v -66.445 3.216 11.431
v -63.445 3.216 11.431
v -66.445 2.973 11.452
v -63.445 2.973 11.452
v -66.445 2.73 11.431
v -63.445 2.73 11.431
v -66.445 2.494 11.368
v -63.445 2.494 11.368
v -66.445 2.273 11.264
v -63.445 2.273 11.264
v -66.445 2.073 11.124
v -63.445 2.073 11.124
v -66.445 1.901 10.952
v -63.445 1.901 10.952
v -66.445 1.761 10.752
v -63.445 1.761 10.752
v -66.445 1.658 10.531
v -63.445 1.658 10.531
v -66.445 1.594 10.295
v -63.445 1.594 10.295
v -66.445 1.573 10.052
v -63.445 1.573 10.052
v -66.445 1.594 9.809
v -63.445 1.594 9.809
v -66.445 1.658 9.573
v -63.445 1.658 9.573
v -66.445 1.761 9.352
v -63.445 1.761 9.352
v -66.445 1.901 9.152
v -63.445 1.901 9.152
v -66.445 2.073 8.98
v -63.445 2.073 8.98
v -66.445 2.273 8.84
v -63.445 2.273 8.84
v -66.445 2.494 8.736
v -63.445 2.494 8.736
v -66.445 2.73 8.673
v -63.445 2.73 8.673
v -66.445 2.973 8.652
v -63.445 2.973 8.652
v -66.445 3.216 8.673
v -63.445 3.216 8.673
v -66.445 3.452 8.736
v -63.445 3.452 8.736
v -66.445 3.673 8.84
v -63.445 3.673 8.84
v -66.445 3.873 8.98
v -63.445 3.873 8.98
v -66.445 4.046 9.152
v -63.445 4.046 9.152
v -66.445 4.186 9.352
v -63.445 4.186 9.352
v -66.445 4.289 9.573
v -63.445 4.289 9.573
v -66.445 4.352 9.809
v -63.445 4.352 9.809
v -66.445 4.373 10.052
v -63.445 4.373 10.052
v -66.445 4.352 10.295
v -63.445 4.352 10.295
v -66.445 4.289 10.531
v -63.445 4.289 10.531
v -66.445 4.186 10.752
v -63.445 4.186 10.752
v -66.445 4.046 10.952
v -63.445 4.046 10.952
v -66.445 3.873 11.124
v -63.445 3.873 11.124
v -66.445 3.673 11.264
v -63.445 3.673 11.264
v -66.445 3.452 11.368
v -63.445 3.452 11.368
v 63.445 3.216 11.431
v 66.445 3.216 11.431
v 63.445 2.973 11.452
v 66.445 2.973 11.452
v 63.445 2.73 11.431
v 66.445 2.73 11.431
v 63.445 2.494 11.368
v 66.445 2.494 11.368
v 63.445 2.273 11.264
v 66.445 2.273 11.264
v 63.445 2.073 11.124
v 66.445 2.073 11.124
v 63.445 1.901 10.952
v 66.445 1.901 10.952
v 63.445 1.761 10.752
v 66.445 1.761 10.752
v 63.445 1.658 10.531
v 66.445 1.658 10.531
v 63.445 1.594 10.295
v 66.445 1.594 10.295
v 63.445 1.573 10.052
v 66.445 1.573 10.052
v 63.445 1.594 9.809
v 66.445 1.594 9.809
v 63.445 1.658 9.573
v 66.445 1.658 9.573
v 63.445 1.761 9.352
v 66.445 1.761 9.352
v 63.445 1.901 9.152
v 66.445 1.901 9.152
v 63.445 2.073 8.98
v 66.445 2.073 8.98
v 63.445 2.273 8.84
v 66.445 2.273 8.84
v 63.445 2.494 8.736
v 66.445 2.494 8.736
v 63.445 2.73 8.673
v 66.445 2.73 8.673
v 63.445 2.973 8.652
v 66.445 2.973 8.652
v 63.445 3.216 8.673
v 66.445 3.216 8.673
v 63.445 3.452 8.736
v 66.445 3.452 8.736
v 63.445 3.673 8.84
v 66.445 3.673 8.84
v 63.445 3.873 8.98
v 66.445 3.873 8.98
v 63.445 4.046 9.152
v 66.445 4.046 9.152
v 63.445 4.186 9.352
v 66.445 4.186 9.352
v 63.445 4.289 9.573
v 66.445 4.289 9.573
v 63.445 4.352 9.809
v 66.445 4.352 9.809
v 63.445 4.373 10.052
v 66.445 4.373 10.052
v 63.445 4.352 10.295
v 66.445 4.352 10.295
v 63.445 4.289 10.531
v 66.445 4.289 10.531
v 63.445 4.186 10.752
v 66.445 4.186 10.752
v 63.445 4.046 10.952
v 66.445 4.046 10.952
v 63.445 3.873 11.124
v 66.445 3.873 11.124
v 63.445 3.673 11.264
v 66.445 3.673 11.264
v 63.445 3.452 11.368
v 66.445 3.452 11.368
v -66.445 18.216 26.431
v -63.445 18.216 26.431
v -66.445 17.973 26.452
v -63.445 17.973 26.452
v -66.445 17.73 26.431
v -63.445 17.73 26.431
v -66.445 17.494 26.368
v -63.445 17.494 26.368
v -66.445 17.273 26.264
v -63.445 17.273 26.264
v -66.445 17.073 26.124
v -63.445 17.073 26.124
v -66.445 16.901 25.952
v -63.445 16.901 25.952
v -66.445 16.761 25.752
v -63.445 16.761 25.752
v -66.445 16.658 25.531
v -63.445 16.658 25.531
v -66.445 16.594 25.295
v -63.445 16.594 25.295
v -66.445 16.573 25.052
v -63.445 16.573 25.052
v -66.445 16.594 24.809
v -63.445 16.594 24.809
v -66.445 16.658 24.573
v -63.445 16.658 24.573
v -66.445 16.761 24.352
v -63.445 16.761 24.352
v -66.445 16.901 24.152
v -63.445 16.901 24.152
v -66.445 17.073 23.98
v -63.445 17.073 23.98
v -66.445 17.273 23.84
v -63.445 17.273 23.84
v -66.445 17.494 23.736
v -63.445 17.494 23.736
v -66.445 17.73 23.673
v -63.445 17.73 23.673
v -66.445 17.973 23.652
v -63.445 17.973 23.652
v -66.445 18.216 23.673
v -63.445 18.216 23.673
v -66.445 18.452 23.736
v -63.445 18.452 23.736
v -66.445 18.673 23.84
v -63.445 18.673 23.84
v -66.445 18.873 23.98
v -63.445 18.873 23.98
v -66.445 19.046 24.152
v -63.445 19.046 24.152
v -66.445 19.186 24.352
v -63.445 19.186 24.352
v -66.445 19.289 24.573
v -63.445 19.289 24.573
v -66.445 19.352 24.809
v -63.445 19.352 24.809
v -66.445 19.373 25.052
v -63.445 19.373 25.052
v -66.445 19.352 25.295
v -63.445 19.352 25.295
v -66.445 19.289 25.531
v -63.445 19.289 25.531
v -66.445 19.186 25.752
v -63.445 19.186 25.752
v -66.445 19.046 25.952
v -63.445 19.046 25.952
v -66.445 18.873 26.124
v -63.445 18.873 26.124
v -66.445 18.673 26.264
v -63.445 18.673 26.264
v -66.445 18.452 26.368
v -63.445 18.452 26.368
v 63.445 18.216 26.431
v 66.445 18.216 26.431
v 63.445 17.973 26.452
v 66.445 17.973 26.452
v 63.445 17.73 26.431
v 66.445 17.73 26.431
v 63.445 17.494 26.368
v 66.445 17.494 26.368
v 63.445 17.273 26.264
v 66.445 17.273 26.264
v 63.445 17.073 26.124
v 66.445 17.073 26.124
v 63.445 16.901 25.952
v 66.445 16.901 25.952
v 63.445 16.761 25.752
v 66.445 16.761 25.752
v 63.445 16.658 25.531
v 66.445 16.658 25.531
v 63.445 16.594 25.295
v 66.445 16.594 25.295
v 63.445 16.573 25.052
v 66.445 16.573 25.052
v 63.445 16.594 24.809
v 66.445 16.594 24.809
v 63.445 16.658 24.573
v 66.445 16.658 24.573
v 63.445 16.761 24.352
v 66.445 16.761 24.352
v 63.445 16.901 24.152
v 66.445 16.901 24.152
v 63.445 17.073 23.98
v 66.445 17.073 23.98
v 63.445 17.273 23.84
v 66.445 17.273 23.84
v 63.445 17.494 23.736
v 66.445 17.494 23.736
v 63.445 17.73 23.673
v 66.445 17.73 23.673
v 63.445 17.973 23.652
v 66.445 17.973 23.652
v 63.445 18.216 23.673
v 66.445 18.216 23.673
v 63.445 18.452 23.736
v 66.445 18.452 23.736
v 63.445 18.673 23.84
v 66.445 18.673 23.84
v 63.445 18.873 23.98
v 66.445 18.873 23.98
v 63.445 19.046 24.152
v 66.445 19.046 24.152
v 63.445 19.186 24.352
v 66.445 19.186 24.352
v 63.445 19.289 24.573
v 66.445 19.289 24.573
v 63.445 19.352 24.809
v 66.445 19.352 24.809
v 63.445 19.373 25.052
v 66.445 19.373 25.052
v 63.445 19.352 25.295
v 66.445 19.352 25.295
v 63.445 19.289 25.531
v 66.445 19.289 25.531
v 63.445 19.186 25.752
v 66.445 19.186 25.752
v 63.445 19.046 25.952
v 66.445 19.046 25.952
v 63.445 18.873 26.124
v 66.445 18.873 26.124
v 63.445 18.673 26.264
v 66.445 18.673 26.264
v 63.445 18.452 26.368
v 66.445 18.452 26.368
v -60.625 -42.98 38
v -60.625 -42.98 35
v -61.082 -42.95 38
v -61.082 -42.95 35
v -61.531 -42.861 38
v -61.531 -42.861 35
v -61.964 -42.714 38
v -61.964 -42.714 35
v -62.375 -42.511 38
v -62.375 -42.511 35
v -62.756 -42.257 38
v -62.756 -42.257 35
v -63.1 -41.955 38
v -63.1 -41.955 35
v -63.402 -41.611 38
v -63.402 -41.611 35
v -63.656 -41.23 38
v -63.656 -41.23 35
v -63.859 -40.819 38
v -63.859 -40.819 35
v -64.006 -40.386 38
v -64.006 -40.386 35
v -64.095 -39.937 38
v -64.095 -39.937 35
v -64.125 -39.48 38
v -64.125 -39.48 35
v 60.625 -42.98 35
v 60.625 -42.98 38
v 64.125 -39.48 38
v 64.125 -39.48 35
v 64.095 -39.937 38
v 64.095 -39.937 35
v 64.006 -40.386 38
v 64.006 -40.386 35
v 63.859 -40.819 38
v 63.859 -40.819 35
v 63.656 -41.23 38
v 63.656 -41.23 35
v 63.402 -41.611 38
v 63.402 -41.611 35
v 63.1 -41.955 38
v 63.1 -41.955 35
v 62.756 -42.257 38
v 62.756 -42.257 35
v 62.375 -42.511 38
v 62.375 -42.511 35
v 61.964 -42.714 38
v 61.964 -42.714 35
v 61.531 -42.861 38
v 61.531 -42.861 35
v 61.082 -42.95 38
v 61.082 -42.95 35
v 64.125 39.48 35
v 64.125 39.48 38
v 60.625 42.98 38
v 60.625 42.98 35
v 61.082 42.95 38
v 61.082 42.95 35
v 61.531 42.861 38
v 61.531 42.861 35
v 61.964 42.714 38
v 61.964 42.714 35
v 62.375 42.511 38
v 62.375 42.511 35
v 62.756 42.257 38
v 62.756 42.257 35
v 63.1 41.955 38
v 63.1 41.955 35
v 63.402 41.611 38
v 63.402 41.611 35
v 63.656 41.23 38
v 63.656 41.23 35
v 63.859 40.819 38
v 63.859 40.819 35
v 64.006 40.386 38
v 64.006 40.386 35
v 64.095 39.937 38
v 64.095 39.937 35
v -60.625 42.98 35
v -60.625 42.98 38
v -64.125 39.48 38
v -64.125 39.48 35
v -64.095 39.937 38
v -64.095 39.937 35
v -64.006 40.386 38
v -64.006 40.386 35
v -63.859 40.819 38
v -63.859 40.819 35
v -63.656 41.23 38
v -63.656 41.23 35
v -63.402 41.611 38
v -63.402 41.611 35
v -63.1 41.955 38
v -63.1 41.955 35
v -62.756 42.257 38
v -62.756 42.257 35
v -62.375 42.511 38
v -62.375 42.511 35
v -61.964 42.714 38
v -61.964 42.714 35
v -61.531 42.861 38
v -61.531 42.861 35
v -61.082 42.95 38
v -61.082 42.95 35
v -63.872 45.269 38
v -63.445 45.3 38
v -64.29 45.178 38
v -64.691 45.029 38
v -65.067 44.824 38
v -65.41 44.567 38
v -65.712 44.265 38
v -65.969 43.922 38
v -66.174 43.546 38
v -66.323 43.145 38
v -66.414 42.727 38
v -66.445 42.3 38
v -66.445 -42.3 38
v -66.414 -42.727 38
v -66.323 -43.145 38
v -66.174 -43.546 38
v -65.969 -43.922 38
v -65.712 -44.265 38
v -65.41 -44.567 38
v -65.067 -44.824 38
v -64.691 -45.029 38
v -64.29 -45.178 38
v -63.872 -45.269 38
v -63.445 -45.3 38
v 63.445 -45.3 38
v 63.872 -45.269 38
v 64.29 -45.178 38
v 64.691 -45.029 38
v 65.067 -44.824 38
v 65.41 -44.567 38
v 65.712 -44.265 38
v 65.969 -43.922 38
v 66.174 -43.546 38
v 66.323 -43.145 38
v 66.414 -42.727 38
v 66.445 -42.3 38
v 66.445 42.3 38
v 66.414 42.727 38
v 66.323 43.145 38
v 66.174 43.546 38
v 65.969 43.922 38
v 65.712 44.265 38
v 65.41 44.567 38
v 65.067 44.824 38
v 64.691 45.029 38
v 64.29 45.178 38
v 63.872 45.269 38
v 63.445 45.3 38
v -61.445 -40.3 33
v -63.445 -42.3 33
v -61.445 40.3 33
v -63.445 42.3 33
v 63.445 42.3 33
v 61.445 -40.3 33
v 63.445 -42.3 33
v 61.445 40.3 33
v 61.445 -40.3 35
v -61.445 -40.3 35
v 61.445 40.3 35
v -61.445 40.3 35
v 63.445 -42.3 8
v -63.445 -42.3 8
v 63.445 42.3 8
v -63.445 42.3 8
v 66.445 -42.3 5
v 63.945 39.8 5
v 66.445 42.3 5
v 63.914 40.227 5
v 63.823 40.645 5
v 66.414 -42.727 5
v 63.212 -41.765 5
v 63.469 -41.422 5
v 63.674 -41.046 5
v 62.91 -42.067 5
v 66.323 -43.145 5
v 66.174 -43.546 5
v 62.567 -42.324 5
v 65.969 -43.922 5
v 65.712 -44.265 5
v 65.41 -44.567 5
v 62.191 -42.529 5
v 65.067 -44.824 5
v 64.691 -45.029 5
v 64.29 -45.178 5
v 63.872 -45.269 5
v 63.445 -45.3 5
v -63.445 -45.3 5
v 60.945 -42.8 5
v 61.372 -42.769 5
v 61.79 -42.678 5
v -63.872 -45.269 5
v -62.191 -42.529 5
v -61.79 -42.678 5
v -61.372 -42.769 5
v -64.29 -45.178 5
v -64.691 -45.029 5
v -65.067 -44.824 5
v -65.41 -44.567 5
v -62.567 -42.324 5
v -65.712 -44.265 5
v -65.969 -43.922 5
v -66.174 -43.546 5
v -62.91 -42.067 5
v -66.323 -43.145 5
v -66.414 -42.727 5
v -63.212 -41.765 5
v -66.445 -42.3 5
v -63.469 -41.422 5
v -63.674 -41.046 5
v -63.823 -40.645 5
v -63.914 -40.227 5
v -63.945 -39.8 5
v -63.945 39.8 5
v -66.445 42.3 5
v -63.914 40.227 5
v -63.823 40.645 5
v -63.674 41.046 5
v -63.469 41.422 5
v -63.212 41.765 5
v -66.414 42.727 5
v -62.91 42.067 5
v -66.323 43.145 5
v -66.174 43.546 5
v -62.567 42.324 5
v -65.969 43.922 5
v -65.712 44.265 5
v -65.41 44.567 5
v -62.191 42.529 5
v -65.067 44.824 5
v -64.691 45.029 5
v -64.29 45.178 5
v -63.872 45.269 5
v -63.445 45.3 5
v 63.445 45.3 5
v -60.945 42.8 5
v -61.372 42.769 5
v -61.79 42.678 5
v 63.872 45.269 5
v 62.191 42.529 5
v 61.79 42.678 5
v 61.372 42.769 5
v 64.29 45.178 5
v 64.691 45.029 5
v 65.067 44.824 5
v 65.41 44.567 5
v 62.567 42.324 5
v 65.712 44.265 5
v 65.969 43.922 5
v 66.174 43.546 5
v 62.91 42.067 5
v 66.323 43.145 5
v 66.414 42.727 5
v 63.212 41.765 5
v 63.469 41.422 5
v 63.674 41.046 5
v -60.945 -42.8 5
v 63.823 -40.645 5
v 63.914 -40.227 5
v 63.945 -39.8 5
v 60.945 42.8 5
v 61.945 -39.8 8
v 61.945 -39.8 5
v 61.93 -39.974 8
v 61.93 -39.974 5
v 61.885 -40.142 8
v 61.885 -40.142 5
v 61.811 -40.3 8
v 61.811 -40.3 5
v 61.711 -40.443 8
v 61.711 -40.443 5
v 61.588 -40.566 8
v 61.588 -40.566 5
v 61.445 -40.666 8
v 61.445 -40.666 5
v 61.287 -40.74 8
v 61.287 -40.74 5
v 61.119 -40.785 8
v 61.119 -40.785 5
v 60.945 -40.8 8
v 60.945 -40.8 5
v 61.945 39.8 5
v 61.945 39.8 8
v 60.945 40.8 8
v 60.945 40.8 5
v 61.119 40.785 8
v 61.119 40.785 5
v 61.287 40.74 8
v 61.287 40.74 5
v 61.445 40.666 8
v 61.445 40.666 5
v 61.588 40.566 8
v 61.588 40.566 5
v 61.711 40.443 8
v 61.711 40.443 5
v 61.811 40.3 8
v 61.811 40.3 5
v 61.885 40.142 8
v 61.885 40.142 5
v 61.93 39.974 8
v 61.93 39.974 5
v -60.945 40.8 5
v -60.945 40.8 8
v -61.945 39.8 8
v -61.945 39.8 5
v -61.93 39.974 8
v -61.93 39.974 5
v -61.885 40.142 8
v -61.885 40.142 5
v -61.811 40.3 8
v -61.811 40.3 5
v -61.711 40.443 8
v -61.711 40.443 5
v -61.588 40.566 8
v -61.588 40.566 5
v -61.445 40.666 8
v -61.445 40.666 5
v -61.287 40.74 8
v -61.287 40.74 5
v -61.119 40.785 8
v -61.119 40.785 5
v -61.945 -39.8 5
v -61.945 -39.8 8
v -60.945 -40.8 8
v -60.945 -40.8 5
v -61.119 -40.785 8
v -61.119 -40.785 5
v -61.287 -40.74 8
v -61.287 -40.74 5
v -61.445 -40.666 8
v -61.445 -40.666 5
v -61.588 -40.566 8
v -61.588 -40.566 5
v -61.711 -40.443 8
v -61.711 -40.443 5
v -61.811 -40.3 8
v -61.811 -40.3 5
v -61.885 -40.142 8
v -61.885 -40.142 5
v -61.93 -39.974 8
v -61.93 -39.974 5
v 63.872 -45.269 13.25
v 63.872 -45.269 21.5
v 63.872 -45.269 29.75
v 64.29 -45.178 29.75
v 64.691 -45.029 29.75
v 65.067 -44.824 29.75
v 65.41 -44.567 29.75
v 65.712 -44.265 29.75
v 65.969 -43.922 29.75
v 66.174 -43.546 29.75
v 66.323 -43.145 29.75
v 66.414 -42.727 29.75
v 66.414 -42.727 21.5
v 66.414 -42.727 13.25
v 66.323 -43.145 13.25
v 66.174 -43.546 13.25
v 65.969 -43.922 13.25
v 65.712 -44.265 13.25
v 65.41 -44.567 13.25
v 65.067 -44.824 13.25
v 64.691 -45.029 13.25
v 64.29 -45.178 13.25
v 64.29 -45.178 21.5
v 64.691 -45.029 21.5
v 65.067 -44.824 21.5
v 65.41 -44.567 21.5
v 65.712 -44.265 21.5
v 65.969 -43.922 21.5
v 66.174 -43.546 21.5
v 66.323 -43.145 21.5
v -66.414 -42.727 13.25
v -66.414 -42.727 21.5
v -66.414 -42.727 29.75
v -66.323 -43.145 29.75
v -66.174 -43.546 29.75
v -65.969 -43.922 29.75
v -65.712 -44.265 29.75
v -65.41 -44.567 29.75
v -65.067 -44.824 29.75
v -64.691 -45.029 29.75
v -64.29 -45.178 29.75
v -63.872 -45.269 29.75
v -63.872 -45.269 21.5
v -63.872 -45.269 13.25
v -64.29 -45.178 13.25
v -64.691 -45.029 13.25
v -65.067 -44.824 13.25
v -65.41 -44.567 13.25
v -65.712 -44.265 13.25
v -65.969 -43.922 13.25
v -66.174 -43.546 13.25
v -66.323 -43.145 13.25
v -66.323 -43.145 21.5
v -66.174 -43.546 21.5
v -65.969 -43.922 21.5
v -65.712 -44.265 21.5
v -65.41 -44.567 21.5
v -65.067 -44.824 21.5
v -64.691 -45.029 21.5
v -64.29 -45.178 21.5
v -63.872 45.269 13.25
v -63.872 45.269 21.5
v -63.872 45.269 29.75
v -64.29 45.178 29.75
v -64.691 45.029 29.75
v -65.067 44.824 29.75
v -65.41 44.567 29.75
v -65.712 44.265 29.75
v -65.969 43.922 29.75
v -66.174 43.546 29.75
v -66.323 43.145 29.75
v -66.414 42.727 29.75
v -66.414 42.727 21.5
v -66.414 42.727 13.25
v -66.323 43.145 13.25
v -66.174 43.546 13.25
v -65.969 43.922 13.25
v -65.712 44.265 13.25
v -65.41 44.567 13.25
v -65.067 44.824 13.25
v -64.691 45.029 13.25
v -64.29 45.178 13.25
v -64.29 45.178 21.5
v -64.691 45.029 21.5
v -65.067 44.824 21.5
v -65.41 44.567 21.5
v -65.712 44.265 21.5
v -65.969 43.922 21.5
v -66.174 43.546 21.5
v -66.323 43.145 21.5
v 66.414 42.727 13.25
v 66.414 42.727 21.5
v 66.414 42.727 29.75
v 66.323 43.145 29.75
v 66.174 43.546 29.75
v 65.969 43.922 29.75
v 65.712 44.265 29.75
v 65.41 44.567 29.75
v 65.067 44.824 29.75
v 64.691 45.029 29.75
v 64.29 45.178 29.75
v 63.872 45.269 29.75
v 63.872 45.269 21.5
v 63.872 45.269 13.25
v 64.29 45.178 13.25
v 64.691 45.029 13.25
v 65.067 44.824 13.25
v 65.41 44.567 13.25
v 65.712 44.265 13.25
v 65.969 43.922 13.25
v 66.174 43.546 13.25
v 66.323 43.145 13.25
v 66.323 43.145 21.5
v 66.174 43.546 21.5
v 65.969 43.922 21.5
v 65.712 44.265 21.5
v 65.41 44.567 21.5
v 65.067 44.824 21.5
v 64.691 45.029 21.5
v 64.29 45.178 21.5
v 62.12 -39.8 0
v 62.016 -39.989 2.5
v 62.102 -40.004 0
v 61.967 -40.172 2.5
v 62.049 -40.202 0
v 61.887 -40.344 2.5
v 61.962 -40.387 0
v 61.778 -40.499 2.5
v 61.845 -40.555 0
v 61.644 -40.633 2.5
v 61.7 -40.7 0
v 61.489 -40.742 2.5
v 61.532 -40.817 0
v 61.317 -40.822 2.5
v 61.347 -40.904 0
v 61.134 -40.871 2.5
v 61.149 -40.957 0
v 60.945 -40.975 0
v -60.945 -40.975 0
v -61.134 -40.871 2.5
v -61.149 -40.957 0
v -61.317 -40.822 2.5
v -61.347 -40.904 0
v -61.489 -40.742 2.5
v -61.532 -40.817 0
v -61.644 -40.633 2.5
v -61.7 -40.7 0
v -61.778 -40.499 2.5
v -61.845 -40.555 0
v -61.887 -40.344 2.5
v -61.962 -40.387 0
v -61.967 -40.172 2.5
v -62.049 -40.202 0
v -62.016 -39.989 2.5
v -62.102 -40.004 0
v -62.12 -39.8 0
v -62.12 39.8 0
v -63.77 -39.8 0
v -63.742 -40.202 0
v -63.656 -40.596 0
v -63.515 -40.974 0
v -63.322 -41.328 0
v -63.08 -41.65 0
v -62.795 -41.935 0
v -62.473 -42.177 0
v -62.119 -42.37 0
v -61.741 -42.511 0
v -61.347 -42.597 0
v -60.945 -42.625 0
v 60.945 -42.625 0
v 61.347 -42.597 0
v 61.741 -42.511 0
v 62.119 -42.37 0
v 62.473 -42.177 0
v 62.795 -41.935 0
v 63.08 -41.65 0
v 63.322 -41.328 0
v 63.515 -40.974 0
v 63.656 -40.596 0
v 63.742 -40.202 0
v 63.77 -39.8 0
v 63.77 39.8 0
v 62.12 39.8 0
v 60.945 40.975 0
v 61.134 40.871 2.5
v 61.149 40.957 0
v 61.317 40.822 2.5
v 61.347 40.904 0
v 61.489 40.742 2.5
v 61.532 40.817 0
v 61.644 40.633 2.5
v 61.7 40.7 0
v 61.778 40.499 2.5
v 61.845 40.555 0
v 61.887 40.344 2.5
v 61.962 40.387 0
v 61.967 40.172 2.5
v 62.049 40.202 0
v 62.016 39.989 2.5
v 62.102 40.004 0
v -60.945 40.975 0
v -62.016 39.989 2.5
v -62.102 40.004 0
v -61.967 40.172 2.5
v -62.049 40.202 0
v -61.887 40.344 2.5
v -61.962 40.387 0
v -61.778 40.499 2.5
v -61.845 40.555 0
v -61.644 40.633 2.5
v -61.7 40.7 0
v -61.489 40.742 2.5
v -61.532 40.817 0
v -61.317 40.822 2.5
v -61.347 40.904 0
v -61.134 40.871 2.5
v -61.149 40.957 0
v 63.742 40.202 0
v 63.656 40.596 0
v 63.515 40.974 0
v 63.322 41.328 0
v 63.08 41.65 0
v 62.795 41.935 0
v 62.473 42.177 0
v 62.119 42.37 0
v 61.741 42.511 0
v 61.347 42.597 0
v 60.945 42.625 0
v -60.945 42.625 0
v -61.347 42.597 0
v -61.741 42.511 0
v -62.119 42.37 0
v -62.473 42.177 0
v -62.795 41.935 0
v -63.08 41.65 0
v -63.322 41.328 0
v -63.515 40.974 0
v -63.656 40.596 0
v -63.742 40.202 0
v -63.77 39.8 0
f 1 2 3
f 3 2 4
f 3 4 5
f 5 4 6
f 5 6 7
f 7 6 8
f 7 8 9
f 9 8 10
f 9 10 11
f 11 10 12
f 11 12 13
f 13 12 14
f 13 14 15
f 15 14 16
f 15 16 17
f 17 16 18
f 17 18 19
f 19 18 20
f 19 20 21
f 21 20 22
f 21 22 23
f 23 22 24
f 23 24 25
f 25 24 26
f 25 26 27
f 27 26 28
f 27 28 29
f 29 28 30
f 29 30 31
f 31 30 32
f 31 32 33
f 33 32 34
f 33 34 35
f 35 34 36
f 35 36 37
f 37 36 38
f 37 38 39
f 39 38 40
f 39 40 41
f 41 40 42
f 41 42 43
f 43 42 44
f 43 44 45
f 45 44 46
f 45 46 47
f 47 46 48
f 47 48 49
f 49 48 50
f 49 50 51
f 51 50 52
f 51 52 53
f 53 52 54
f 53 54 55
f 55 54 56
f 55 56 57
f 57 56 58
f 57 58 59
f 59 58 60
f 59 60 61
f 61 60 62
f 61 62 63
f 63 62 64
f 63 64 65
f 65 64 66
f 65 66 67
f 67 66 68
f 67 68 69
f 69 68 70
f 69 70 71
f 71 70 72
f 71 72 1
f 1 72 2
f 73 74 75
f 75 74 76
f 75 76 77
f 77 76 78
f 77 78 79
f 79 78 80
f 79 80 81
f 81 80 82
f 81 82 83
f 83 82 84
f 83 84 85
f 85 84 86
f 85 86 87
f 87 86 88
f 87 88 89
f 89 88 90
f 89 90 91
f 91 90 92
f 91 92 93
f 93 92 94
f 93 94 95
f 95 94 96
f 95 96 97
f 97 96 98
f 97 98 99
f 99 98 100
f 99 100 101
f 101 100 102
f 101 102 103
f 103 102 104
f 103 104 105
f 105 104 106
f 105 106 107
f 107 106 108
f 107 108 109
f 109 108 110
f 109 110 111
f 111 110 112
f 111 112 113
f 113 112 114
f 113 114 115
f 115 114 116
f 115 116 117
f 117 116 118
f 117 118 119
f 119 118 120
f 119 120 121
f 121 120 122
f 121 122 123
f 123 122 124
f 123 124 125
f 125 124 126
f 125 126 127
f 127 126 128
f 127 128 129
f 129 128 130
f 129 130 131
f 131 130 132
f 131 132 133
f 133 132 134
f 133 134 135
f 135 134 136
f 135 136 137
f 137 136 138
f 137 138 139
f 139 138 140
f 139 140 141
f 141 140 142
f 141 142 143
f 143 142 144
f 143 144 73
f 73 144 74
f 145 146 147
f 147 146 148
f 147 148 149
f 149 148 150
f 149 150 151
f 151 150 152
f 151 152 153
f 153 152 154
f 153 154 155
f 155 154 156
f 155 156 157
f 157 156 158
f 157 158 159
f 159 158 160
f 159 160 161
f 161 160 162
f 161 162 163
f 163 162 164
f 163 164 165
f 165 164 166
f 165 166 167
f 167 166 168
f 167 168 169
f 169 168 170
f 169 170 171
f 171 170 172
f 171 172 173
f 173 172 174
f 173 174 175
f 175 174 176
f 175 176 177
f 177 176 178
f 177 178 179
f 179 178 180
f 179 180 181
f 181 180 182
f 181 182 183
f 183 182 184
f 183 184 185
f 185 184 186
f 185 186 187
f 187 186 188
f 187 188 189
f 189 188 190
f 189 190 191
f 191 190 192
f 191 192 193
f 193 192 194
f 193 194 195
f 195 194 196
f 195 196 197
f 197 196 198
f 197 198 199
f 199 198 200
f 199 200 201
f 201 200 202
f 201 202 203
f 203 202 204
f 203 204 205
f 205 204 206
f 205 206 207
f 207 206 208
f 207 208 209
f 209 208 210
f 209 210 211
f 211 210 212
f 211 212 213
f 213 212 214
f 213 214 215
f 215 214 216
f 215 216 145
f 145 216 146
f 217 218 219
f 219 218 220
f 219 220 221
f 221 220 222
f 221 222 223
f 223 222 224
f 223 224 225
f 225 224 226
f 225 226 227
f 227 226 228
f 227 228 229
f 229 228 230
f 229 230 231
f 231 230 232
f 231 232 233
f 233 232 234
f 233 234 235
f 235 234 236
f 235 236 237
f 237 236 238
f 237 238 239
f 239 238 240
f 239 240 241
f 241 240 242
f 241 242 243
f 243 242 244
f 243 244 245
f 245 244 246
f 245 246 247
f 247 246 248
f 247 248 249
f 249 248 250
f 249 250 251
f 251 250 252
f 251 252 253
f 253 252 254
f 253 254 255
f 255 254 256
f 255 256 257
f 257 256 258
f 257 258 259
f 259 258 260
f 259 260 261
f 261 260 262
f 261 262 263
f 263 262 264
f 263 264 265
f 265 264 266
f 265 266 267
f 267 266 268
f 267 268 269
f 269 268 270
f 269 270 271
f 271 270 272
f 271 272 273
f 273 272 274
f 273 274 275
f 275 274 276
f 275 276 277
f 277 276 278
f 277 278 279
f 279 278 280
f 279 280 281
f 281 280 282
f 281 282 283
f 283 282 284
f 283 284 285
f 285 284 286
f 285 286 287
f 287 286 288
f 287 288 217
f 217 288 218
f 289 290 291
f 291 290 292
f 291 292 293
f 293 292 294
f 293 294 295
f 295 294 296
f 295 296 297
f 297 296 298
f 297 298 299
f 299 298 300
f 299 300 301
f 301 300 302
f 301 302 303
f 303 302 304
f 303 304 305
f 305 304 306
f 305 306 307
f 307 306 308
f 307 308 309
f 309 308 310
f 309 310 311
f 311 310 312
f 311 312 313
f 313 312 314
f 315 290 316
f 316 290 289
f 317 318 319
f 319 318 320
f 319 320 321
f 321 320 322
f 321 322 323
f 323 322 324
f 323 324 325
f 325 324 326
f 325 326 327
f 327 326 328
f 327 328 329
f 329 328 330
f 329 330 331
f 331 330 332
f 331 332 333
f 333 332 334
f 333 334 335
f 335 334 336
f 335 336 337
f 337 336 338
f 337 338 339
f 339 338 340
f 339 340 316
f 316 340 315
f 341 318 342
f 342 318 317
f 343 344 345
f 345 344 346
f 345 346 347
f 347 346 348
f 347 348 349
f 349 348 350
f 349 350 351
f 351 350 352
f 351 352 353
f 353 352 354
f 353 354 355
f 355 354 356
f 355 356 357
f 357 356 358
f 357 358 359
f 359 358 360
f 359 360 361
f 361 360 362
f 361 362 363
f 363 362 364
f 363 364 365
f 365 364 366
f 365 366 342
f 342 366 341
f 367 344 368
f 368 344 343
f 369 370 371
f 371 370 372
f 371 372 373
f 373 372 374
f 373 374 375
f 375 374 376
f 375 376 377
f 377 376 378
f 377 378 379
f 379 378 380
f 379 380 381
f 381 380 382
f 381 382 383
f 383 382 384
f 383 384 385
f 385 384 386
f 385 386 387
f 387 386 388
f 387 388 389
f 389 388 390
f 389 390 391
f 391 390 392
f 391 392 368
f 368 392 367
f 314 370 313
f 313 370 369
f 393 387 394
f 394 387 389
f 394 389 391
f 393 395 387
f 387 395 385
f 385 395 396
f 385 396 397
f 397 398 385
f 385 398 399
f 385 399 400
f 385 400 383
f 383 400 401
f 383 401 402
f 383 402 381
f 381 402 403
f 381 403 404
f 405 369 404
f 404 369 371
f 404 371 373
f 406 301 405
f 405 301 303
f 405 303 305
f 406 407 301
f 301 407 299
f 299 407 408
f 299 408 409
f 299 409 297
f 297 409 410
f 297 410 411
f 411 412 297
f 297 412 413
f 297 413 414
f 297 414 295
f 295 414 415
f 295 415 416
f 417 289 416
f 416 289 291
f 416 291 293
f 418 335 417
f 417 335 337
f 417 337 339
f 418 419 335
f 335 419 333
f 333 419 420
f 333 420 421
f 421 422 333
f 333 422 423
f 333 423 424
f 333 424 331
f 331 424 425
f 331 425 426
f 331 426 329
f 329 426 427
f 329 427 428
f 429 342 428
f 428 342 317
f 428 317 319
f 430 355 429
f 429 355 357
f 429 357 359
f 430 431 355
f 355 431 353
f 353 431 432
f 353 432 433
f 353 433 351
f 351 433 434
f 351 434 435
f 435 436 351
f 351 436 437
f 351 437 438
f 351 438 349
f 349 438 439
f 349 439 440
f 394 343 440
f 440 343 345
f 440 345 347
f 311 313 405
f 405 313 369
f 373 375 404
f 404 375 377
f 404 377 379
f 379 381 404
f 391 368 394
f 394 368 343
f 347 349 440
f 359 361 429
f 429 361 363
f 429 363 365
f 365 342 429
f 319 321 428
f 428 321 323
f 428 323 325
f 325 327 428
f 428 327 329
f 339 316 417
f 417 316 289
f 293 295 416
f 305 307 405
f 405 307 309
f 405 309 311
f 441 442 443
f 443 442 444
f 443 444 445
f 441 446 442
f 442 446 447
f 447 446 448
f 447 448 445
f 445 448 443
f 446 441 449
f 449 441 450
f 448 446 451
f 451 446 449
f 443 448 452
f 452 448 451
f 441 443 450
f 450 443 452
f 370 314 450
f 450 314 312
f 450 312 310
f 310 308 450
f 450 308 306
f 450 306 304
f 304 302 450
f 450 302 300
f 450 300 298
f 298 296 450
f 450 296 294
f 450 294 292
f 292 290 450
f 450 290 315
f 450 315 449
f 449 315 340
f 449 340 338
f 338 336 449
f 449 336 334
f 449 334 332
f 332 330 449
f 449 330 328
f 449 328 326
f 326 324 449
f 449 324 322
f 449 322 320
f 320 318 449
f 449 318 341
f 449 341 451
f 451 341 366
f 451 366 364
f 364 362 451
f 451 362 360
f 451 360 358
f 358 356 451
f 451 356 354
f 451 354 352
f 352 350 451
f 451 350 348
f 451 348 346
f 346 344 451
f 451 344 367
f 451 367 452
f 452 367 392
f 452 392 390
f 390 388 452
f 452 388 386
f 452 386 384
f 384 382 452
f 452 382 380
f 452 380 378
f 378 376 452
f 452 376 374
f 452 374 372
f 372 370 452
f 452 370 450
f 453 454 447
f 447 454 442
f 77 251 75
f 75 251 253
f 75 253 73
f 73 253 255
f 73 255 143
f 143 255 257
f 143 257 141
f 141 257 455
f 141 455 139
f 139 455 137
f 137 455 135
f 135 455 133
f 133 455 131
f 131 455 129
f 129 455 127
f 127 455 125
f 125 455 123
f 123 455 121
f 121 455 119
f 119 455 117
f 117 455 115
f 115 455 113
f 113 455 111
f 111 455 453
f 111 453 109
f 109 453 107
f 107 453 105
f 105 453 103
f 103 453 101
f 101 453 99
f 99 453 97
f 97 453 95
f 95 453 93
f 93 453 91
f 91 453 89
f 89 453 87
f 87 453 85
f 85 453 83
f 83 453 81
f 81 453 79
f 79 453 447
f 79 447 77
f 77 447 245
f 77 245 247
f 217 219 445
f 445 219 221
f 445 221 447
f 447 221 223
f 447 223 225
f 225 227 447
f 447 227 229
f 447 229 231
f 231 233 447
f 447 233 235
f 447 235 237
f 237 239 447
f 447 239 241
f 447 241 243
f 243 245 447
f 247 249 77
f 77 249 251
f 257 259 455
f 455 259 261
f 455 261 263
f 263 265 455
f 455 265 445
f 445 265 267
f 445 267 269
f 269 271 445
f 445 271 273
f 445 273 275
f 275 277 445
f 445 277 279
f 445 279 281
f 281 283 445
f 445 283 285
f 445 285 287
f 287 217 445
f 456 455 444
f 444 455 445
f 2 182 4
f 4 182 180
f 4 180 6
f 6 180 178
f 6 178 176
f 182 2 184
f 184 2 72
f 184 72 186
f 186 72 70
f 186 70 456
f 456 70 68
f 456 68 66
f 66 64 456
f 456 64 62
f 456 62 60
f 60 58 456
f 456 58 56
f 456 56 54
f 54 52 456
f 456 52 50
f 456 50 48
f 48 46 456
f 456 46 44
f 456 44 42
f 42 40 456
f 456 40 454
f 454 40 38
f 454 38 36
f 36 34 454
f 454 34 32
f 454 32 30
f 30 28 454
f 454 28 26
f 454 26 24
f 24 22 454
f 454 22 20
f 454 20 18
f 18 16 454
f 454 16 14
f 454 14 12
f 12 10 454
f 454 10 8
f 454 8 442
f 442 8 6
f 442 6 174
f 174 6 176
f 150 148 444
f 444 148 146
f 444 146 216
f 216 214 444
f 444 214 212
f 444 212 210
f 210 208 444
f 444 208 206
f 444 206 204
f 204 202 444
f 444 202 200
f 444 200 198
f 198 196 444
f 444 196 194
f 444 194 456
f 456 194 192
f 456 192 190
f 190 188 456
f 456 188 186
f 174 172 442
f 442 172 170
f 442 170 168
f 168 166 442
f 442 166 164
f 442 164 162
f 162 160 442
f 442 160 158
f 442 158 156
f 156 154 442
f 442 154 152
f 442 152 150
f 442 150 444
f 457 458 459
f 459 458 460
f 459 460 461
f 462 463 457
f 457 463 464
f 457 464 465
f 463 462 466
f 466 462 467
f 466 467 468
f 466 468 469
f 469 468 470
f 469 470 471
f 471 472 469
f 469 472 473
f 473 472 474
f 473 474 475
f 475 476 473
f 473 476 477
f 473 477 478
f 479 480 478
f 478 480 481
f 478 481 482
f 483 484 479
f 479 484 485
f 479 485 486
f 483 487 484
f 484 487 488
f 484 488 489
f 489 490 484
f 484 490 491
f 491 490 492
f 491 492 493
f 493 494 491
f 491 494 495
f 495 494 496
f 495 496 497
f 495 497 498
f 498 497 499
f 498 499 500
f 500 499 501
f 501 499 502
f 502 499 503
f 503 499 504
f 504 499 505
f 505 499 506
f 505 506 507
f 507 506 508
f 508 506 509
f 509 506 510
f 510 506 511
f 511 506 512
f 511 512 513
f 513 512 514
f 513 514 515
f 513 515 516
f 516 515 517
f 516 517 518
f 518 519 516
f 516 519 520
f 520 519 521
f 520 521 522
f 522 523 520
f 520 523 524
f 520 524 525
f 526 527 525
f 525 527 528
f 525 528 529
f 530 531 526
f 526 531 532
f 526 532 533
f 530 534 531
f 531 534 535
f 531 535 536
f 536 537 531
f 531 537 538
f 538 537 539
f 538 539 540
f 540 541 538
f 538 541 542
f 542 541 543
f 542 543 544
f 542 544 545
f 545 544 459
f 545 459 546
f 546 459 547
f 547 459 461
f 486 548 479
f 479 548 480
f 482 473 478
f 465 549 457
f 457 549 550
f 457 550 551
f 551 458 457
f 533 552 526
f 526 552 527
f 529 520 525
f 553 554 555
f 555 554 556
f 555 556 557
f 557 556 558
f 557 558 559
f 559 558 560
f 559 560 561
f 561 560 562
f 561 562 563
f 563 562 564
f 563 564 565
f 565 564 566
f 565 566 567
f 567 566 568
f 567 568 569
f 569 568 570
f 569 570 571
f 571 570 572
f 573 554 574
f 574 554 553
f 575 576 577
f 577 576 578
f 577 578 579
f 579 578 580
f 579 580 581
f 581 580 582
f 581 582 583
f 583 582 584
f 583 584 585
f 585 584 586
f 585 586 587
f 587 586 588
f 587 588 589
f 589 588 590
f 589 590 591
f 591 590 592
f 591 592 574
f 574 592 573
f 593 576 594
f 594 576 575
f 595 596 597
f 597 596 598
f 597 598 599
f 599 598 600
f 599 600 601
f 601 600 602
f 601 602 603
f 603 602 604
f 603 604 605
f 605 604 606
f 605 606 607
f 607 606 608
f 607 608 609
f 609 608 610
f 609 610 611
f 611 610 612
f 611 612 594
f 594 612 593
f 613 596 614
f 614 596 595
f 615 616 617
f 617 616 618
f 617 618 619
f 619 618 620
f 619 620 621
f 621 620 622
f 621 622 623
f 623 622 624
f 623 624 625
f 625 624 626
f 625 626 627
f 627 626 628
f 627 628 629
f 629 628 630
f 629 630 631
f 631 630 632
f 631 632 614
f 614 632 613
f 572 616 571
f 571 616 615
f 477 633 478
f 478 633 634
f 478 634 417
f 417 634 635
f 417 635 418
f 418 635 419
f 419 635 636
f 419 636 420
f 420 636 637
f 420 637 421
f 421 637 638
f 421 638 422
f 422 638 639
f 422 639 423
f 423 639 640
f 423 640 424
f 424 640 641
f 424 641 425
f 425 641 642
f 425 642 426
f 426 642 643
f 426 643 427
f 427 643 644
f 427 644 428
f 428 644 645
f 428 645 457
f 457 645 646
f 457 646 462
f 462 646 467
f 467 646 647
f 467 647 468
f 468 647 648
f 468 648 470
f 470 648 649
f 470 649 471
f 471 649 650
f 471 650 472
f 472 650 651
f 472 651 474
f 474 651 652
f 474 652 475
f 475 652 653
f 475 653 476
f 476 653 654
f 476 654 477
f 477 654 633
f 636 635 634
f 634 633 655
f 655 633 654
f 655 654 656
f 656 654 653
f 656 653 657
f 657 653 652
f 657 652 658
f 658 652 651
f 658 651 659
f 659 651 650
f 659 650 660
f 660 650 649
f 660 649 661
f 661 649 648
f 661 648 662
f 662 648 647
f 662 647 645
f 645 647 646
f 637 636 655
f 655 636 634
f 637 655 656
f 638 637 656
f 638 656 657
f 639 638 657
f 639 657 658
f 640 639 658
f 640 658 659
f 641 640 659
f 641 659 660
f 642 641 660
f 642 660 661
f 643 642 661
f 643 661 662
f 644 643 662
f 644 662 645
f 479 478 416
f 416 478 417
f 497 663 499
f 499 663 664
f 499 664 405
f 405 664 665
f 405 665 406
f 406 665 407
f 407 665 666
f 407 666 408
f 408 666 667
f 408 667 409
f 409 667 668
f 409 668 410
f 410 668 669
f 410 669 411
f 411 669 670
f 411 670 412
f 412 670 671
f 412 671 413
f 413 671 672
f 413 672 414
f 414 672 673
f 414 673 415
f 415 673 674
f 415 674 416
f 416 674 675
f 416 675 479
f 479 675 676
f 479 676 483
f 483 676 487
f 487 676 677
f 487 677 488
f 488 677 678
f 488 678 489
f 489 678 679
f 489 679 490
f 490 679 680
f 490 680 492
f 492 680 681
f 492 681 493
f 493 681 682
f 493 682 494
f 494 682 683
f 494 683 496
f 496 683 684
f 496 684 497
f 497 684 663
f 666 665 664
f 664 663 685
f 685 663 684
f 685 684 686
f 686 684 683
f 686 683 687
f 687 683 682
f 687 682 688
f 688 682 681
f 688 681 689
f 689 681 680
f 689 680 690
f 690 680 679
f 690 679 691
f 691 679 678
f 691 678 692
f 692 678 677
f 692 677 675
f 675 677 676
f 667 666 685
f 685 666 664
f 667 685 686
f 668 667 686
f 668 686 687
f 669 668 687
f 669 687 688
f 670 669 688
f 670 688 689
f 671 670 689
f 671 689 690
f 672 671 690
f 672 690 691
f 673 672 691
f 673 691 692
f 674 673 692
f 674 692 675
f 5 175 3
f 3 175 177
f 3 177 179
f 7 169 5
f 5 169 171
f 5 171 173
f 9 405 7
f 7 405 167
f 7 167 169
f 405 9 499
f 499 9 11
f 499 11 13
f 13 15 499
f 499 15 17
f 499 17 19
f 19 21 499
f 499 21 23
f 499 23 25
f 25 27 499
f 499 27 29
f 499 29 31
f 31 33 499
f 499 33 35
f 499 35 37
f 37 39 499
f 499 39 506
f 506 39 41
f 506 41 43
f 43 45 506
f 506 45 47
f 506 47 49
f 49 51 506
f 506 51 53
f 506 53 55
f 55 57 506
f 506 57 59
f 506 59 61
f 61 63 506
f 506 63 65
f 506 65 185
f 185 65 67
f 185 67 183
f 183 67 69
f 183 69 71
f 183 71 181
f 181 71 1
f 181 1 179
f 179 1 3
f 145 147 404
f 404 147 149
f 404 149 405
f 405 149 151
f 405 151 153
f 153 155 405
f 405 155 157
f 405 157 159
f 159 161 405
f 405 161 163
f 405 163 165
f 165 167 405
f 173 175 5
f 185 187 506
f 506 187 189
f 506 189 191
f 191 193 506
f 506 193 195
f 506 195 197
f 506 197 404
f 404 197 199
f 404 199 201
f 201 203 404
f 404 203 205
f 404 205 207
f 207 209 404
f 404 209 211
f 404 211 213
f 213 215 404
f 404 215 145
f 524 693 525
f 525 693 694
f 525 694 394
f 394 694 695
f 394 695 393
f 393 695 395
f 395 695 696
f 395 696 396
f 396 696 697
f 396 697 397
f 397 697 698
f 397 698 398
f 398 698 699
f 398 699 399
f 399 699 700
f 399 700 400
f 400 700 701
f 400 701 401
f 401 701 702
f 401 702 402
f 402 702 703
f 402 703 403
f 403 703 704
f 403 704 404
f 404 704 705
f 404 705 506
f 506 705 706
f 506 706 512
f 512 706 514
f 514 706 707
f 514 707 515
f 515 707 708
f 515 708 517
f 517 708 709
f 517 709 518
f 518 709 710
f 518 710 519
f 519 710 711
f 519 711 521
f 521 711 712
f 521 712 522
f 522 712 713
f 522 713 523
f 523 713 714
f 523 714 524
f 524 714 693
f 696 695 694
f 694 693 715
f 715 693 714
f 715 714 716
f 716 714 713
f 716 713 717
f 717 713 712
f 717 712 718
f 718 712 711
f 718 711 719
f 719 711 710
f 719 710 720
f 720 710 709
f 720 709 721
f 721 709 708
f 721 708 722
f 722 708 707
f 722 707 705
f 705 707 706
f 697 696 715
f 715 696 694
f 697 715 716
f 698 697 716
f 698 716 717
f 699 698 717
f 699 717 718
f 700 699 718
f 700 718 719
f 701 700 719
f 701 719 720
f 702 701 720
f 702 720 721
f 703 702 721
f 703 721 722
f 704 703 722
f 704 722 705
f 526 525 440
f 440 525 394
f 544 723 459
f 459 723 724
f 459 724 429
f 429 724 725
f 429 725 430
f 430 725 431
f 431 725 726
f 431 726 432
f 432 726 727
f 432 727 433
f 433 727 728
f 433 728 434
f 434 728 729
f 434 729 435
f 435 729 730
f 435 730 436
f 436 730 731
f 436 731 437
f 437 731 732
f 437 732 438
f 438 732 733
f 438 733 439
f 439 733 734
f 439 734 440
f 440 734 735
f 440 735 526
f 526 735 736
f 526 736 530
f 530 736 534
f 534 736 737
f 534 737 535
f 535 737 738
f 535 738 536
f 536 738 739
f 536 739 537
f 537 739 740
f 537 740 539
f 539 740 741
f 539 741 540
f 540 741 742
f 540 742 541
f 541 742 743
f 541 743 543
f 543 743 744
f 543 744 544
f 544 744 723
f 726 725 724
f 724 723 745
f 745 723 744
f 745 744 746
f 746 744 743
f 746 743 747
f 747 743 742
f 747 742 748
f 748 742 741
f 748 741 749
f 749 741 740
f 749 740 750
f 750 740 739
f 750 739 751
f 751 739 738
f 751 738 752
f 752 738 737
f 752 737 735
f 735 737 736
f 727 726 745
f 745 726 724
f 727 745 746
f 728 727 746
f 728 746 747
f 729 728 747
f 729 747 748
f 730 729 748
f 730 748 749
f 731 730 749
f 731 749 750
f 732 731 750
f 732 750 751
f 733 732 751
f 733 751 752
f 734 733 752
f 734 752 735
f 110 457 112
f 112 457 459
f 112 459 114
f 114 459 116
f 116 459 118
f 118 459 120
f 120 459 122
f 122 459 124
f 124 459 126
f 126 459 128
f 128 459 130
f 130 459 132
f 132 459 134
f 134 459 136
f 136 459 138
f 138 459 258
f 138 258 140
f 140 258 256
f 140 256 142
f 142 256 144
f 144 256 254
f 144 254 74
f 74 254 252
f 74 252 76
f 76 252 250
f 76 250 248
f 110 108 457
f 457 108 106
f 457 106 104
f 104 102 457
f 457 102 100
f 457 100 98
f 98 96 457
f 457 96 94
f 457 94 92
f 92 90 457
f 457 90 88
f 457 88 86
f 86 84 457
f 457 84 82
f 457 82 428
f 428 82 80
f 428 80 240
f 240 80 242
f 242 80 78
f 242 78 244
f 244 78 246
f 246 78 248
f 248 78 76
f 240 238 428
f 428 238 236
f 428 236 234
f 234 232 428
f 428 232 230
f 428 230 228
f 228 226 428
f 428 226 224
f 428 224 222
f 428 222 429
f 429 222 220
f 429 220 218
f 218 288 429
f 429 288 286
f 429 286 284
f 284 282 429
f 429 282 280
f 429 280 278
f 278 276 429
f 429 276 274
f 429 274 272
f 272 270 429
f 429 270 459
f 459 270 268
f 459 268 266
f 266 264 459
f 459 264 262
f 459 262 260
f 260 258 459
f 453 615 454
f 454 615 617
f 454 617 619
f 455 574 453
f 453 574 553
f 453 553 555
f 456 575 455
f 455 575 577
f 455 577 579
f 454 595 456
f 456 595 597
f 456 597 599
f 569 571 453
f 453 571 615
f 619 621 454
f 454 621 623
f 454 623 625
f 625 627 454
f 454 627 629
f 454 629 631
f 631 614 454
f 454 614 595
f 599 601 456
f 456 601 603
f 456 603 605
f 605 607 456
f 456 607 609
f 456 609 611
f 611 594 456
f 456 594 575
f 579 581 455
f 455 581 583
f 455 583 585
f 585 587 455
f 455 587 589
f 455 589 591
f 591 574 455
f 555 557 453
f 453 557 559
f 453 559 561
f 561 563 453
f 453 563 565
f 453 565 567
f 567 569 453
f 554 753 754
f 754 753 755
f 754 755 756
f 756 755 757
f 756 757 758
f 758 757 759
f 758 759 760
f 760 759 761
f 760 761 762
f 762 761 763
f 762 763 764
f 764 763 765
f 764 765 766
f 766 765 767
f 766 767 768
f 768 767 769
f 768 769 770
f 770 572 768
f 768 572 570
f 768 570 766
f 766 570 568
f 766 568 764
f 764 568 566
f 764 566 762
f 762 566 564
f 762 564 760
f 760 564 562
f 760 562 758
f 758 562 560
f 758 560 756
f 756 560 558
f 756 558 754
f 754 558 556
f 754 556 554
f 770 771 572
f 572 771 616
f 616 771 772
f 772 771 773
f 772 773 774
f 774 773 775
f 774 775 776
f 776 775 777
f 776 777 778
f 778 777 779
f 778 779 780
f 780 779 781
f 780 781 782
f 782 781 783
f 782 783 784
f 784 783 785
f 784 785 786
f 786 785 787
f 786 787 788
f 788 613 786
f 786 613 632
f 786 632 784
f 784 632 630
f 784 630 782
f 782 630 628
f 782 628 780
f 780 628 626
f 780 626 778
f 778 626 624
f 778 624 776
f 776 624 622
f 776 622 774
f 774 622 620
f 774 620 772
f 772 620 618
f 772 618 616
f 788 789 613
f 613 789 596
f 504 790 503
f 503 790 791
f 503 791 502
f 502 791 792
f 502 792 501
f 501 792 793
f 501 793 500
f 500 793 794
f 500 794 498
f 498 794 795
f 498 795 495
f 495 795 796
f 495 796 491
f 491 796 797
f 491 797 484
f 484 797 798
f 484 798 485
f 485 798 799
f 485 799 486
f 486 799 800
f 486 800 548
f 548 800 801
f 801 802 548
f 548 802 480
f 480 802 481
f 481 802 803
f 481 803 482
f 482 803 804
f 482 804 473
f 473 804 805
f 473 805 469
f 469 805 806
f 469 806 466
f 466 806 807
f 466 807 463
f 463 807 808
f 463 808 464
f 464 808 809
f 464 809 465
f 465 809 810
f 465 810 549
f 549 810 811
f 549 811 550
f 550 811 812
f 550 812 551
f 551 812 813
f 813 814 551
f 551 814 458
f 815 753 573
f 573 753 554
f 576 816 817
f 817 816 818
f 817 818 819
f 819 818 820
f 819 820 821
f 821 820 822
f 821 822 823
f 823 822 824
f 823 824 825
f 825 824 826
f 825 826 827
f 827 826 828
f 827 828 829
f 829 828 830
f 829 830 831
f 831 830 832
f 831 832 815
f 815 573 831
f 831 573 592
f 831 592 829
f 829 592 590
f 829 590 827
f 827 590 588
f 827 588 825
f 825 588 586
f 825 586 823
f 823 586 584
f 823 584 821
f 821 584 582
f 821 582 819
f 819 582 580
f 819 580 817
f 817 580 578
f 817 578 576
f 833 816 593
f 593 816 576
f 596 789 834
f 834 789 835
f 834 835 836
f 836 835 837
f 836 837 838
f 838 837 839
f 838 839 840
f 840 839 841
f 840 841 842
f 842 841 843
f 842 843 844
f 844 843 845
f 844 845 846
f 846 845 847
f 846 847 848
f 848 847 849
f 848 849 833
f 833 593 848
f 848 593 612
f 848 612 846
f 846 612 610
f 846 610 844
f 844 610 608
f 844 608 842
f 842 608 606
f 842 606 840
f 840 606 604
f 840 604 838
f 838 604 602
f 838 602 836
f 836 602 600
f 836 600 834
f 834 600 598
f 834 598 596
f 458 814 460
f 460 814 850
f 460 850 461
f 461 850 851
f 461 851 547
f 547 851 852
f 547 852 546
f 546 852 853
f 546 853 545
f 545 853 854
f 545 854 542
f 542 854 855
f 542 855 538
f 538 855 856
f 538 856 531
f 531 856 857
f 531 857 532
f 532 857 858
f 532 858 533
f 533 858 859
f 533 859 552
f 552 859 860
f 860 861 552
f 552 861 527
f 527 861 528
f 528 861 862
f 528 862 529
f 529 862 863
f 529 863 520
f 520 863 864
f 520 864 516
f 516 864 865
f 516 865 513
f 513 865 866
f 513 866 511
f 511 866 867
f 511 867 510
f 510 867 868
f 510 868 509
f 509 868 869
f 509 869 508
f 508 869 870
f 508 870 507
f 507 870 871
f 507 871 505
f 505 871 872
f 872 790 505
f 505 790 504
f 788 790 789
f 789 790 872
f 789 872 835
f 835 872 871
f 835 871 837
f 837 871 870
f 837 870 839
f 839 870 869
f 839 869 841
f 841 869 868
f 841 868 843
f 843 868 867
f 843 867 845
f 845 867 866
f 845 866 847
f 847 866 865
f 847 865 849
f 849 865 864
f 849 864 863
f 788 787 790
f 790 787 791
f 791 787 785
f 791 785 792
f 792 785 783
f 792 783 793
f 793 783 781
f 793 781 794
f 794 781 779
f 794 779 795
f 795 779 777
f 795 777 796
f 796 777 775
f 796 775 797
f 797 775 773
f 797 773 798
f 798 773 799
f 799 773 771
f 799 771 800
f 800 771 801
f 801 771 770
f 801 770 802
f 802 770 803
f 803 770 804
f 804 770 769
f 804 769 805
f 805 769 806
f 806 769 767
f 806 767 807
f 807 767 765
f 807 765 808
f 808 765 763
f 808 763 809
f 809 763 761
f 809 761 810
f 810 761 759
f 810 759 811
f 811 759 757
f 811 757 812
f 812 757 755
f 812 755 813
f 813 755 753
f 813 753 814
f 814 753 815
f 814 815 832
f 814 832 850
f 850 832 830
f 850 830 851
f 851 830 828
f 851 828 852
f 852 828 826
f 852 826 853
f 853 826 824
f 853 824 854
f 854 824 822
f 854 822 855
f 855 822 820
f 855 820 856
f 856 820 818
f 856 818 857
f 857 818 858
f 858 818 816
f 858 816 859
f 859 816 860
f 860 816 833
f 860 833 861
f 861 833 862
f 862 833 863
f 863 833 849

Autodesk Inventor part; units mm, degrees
ref_plane "YZ Plane" through (0, 0, 0) normal (1, 0, 0) x (0, 1, 0)
ref_plane "XZ Plane" through (0, 0, 0) normal (0, 1, 0) x (-1, 0, 0)
ref_plane "Arbeitsebene1" through (0, 0, 0) normal (0, 0, 1) x (1, 0, 0)
ref_plane "Arbeitsebene2" through (0, 0, 5) normal (0, 0, 1) x (1, 0, 0)
sketch "Skizze2" plane through (0, 0, 5) normal (0, 0, 1) x (1, 0, 0)
  arc A0 (-24.056, -76.2783) -> (-18.8, -75.35) centre (-21.51, -75.35) ccw projected
  arc A1 (63.445, -45.3) -> (66.445, -42.3) centre (63.445, -42.3) ccw projected
  line L0 (66.445, -42.3) -> (66.445, 42.3) projected
  arc A2 (66.445, 42.3) -> (63.445, 45.3) centre (63.445, 42.3) ccw projected
  line L1 (63.445, 45.3) -> (-63.445, 45.3) projected
  arc A3 (-63.445, 45.3) -> (-66.445, 42.3) centre (-63.445, 42.3) ccw projected
  line L2 (-66.445, 42.3) -> (-66.445, -42.3) projected
  arc A4 (-66.445, -42.3) -> (-63.445, -45.3) centre (-63.445, -42.3) ccw projected
  line L3 (-63.445, -45.3) -> (63.445, -45.3) projected
  arc A5 (63.945, 39.8) -> (60.945, 42.8) centre (60.945, 39.8) ccw projected
  line L4 (63.945, 39.8) -> (63.945, -39.8) projected
  arc A6 (60.945, -42.8) -> (63.945, -39.8) centre (60.945, -39.8) ccw projected
  line L5 (60.945, -42.8) -> (-60.945, -42.8) projected
  arc A7 (-63.945, -39.8) -> (-60.945, -42.8) centre (-60.945, -39.8) ccw projected
  line L6 (-63.945, -39.8) -> (-63.945, 39.8) projected
  arc A8 (-60.945, 42.8) -> (-63.945, 39.8) centre (-60.945, 39.8) ccw projected
  line L7 (-60.945, 42.8) -> (60.945, 42.8) projected
  line L8 (-61.945, 39.8) -> (-61.945, -39.8)
  arc A9 (-61.945, -39.8) -> (-60.945, -40.8) centre (-60.945, -39.8) ccw
  line L9 (-60.945, -40.8) -> (60.945, -40.8)
  arc A10 (60.945, -40.8) -> (61.945, -39.8) centre (60.945, -39.8) ccw
  line L10 (61.945, -39.8) -> (61.945, 39.8)
  arc A11 (61.945, 39.8) -> (60.945, 40.8) centre (60.945, 39.8) ccw
  line L11 (60.945, 40.8) -> (-60.945, 40.8)
  arc A12 (-60.945, 40.8) -> (-61.945, 39.8) centre (-60.945, 39.8) ccw
  point P0 (0, 0)
  dimension "d1" = 2
ref_plane "Arbeitsebene3" through (-63.945, -42.8, 0) normal (0, 0, 1) x (1, 0, 0)
extrude "Extrusion1" add sketch "Skizze2" against normal up to surface (5 mm away) draft -2 contours L4 A6 L5 A7 L6 A8 L7 A5
sketch "Skizze3" plane through (0, 0, 5) normal (0, 0, 1) x (1, 0, 0)
  arc A0 (63.445, -45.3) -> (66.445, -42.3) centre (63.445, -42.3) ccw projected
  line L0 (66.445, -42.3) -> (66.445, 42.3) projected
  arc A1 (66.445, 42.3) -> (63.445, 45.3) centre (63.445, 42.3) ccw projected
  line L1 (63.445, 45.3) -> (-63.445, 45.3) projected
  arc A2 (-63.445, 45.3) -> (-66.445, 42.3) centre (-63.445, 42.3) ccw projected
  line L2 (-66.445, 42.3) -> (-66.445, -42.3) projected
  arc A3 (-66.445, -42.3) -> (-63.445, -45.3) centre (-63.445, -42.3) ccw projected
  line L3 (-63.445, -45.3) -> (63.445, -45.3) projected
  arc A4 (63.945, 39.8) -> (60.945, 42.8) centre (60.945, 39.8) ccw projected
  line L4 (63.945, 39.8) -> (63.945, -39.8) projected
  arc A5 (60.945, -42.8) -> (63.945, -39.8) centre (60.945, -39.8) ccw projected
  line L5 (60.945, -42.8) -> (-60.945, -42.8) projected
  arc A6 (-63.945, -39.8) -> (-60.945, -42.8) centre (-60.945, -39.8) ccw projected
  line L6 (-63.945, -39.8) -> (-63.945, 39.8) projected
  arc A7 (-60.945, 42.8) -> (-63.945, 39.8) centre (-60.945, 39.8) ccw projected
  line L7 (-60.945, 42.8) -> (60.945, 42.8) projected
  line L8 (-61.945, -39.8) -> (-61.945, 39.8) projected
  arc A8 (-60.945, 40.8) -> (-61.945, 39.8) centre (-60.945, 39.8) ccw projected
  line L9 (-60.945, 40.8) -> (60.945, 40.8) projected
  arc A9 (61.945, 39.8) -> (60.945, 40.8) centre (60.945, 39.8) ccw projected
  line L10 (61.945, 39.8) -> (61.945, -39.8) projected
  arc A10 (60.945, -40.8) -> (61.945, -39.8) centre (60.945, -39.8) ccw projected
  line L11 (60.945, -40.8) -> (-60.945, -40.8) projected
  arc A11 (-61.945, -39.8) -> (-60.945, -40.8) centre (-60.945, -39.8) ccw projected
  line L12 (63.945, -39.8) -> (63.945, 39.8) projected
  arc A12 (63.945, 39.8) -> (60.945, 42.8) centre (60.945, 39.8) ccw projected
  line L13 (60.945, 42.8) -> (-60.945, 42.8) projected
  arc A13 (-60.945, 42.8) -> (-63.945, 39.8) centre (-60.945, 39.8) ccw projected
  line L14 (-63.945, 39.8) -> (-63.945, -39.8) projected
  arc A14 (-63.945, -39.8) -> (-60.945, -42.8) centre (-60.945, -39.8) ccw projected
  line L15 (-60.945, -42.8) -> (60.945, -42.8) projected
  arc A15 (60.945, -42.8) -> (63.945, -39.8) centre (60.945, -39.8) ccw projected
  point P0 (0, 0)
extrude "Extrusion2" add sketch "Skizze3" along normal blind 3 contours L3 A3 L2 A2 L1 A1 L0 A0 | L4 A5 L5 A6 L6 A7 L7 A4
sketch "Skizze4" plane through (0, 0, 8) normal (0, 0, 1) x (1, 0, 0)
  line L0 (66.445, -42.3) -> (66.445, 42.3) projected
  arc A0 (66.445, 42.3) -> (63.445, 45.3) centre (63.445, 42.3) ccw projected
  line L1 (63.445, 45.3) -> (-63.445, 45.3) projected
  arc A1 (-63.445, 45.3) -> (-66.445, 42.3) centre (-63.445, 42.3) ccw projected
  line L2 (-66.445, 42.3) -> (-66.445, -42.3) projected
  arc A2 (-66.445, -42.3) -> (-63.445, -45.3) centre (-63.445, -42.3) ccw projected
  line L3 (-63.445, -45.3) -> (63.445, -45.3) projected
  arc A3 (63.445, -45.3) -> (66.445, -42.3) centre (63.445, -42.3) ccw projected
  line L4 (60.945, -40.8) -> (-60.945, -40.8) projected
  arc A4 (-61.945, -39.8) -> (-60.945, -40.8) centre (-60.945, -39.8) ccw projected
  line L5 (-61.945, -39.8) -> (-61.945, 39.8) projected
  arc A5 (-60.945, 40.8) -> (-61.945, 39.8) centre (-60.945, 39.8) ccw projected
  line L6 (-60.945, 40.8) -> (60.945, 40.8) projected
  arc A6 (61.945, 39.8) -> (60.945, 40.8) centre (60.945, 39.8) ccw projected
  line L7 (61.945, 39.8) -> (61.945, -39.8) projected
  arc A7 (60.945, -40.8) -> (61.945, -39.8) centre (60.945, -39.8) ccw projected
  line L8 (-63.445, -42.3) -> (-63.445, 42.3)
  line L9 (-63.445, 42.3) -> (63.445, 42.3)
  line L10 (63.445, 42.3) -> (63.445, -42.3)
  line L11 (63.445, -42.3) -> (-63.445, -42.3)
  point P0 (0, 0)
  dimension "d6" = 3
extrude "Extrusion3" add sketch "Skizze4" along normal blind 25 contours A3 L3 A2 L2 A1 L1 A0 L0
sketch "Skizze5" plane through (0, 0, 33) normal (0, 0, 1) x (1, 0, 0)
  arc A0 (66.445, 42.3) -> (63.445, 45.3) centre (63.445, 42.3) ccw projected
  line L0 (63.445, 45.3) -> (-63.445, 45.3) projected
  arc A1 (-63.445, 45.3) -> (-66.445, 42.3) centre (-63.445, 42.3) ccw projected
  line L1 (-66.445, 42.3) -> (-66.445, -42.3) projected
  arc A2 (-66.445, -42.3) -> (-63.445, -45.3) centre (-63.445, -42.3) ccw projected
  line L2 (-63.445, -45.3) -> (63.445, -45.3) projected
  arc A3 (63.445, -45.3) -> (66.445, -42.3) centre (63.445, -42.3) ccw projected
  line L3 (66.445, -42.3) -> (66.445, 42.3) projected
  line L4 (-63.445, -42.3) -> (-63.445, 42.3) projected
  line L5 (-63.445, 42.3) -> (63.445, 42.3) projected
  line L6 (63.445, 42.3) -> (63.445, -42.3) projected
  line L7 (63.445, -42.3) -> (-63.445, -42.3) projected
  line L8 (-61.445, -40.3) -> (-61.445, 40.3)
  line L9 (-61.445, 40.3) -> (61.445, 40.3)
  line L10 (61.445, 40.3) -> (61.445, -40.3)
  line L11 (61.445, -40.3) -> (-61.445, -40.3)
  point P0 (0, 0)
  dimension "d9" = 2
extrude "Extrusion4" add sketch "Skizze5" along normal blind 2 contours L3 A3 L2 A2 L1 A1 L0 A0 | L4 L5 L6 L7
sketch "Skizze6" plane through (0, 0, 35) normal (0, 0, 1) x (1, 0, 0)
  line L0 (-60.625, -42.48) -> (60.625, -42.48) projected
  arc A0 (-63.625, -39.48) -> (-60.625, -42.48) centre (-60.625, -39.48) ccw projected
  line L1 (-63.625, 39.48) -> (-63.625, -39.48) projected
  arc A1 (-60.625, 42.48) -> (-63.625, 39.48) centre (-60.625, 39.48) ccw projected
  line L2 (60.625, 42.48) -> (-60.625, 42.48) projected
  arc A2 (63.625, 39.48) -> (60.625, 42.48) centre (60.625, 39.48) ccw projected
  line L3 (63.625, -39.48) -> (63.625, 39.48) projected
  arc A3 (60.625, -42.48) -> (63.625, -39.48) centre (60.625, -39.48) ccw projected
  line L4 (53.1911, 40.1013) -> (61.2463, 32.0461) projected
  arc A4 (53.1911, 40.1013) -> (51.0698, 40.98) centre (51.0698, 37.98) ccw projected
  line L5 (51.0698, 40.98) -> (-59.125, 40.98) projected
  arc A5 (-59.125, 40.98) -> (-62.125, 37.98) centre (-59.125, 37.98) ccw projected
  line L6 (-62.125, 37.98) -> (-62.125, -37.98) projected
  arc A6 (-62.125, -37.98) -> (-59.125, -40.98) centre (-59.125, -37.98) ccw projected
  line L7 (-59.125, -40.98) -> (51.0698, -40.98) projected
  arc A7 (51.0698, -40.98) -> (53.1911, -40.1013) centre (51.0698, -37.98) ccw projected
  line L8 (61.2463, -32.0461) -> (53.1911, -40.1013) projected
  arc A8 (61.2463, -32.0461) -> (62.125, -29.9248) centre (59.125, -29.9248) ccw projected
  line L9 (62.125, -29.9248) -> (62.125, 29.9248) projected
  arc A9 (62.125, 29.9248) -> (61.2463, 32.0461) centre (59.125, 29.9248) ccw projected
  arc A10 (-64.125, -39.48) -> (-60.625, -42.98) centre (-60.625, -39.48) ccw
  line L10 (-60.625, -42.98) -> (60.625, -42.98)
  arc A11 (60.625, -42.98) -> (64.125, -39.48) centre (60.625, -39.48) ccw
  line L11 (64.125, -39.48) -> (64.125, 39.48)
  arc A12 (64.125, 39.48) -> (60.625, 42.98) centre (60.625, 39.48) ccw
  line L12 (60.625, 42.98) -> (-60.625, 42.98)
  arc A13 (-60.625, 42.98) -> (-64.125, 39.48) centre (-60.625, 39.48) ccw
  line L13 (-64.125, 39.48) -> (-64.125, -39.48)
  line L14 (63.445, 45.3) -> (-63.445, 45.3) projected
  arc A14 (-63.445, 45.3) -> (-66.445, 42.3) centre (-63.445, 42.3) ccw projected
  line L15 (-66.445, 42.3) -> (-66.445, -42.3) projected
  arc A15 (-66.445, -42.3) -> (-63.445, -45.3) centre (-63.445, -42.3) ccw projected
  line L16 (-63.445, -45.3) -> (63.445, -45.3) projected
  arc A16 (63.445, -45.3) -> (66.445, -42.3) centre (63.445, -42.3) ccw projected
  line L17 (66.445, -42.3) -> (66.445, 42.3) projected
  arc A17 (66.445, 42.3) -> (63.445, 45.3) centre (63.445, 42.3) ccw projected
  line L18 (-61.445, -40.3) -> (-61.445, 40.3) projected
  line L19 (-61.445, 40.3) -> (61.445, 40.3) projected
  line L20 (61.445, 40.3) -> (61.445, -40.3) projected
  line L21 (61.445, -40.3) -> (-61.445, -40.3) projected
  point P0 (0, 0)
  dimension "d12" = 0.5
extrude "Extrusion5" add sketch "Skizze6" along normal blind 3 contours A17 L17 A16 L16 A15 L15 A14 L14
sketch "Skizze7" plane through (66.445, -42.3, 5) normal (1, 0, 0) x (0, 0, -1)
  circle A0 centre (-5.052, 45.2732) radius 1.49 projected
  circle A1 centre (-20.052, 60.2732) radius 1.4 projected
  point P0 (5, 42.3)
hole "Bohrung1" at (66.445, 2.9732, 10.052) at (66.445, 17.9732, 25.052) direction (-1, 0, 0) diameter 2.8 end through all
properties part number "NematostellaImager_spacer_v0"
